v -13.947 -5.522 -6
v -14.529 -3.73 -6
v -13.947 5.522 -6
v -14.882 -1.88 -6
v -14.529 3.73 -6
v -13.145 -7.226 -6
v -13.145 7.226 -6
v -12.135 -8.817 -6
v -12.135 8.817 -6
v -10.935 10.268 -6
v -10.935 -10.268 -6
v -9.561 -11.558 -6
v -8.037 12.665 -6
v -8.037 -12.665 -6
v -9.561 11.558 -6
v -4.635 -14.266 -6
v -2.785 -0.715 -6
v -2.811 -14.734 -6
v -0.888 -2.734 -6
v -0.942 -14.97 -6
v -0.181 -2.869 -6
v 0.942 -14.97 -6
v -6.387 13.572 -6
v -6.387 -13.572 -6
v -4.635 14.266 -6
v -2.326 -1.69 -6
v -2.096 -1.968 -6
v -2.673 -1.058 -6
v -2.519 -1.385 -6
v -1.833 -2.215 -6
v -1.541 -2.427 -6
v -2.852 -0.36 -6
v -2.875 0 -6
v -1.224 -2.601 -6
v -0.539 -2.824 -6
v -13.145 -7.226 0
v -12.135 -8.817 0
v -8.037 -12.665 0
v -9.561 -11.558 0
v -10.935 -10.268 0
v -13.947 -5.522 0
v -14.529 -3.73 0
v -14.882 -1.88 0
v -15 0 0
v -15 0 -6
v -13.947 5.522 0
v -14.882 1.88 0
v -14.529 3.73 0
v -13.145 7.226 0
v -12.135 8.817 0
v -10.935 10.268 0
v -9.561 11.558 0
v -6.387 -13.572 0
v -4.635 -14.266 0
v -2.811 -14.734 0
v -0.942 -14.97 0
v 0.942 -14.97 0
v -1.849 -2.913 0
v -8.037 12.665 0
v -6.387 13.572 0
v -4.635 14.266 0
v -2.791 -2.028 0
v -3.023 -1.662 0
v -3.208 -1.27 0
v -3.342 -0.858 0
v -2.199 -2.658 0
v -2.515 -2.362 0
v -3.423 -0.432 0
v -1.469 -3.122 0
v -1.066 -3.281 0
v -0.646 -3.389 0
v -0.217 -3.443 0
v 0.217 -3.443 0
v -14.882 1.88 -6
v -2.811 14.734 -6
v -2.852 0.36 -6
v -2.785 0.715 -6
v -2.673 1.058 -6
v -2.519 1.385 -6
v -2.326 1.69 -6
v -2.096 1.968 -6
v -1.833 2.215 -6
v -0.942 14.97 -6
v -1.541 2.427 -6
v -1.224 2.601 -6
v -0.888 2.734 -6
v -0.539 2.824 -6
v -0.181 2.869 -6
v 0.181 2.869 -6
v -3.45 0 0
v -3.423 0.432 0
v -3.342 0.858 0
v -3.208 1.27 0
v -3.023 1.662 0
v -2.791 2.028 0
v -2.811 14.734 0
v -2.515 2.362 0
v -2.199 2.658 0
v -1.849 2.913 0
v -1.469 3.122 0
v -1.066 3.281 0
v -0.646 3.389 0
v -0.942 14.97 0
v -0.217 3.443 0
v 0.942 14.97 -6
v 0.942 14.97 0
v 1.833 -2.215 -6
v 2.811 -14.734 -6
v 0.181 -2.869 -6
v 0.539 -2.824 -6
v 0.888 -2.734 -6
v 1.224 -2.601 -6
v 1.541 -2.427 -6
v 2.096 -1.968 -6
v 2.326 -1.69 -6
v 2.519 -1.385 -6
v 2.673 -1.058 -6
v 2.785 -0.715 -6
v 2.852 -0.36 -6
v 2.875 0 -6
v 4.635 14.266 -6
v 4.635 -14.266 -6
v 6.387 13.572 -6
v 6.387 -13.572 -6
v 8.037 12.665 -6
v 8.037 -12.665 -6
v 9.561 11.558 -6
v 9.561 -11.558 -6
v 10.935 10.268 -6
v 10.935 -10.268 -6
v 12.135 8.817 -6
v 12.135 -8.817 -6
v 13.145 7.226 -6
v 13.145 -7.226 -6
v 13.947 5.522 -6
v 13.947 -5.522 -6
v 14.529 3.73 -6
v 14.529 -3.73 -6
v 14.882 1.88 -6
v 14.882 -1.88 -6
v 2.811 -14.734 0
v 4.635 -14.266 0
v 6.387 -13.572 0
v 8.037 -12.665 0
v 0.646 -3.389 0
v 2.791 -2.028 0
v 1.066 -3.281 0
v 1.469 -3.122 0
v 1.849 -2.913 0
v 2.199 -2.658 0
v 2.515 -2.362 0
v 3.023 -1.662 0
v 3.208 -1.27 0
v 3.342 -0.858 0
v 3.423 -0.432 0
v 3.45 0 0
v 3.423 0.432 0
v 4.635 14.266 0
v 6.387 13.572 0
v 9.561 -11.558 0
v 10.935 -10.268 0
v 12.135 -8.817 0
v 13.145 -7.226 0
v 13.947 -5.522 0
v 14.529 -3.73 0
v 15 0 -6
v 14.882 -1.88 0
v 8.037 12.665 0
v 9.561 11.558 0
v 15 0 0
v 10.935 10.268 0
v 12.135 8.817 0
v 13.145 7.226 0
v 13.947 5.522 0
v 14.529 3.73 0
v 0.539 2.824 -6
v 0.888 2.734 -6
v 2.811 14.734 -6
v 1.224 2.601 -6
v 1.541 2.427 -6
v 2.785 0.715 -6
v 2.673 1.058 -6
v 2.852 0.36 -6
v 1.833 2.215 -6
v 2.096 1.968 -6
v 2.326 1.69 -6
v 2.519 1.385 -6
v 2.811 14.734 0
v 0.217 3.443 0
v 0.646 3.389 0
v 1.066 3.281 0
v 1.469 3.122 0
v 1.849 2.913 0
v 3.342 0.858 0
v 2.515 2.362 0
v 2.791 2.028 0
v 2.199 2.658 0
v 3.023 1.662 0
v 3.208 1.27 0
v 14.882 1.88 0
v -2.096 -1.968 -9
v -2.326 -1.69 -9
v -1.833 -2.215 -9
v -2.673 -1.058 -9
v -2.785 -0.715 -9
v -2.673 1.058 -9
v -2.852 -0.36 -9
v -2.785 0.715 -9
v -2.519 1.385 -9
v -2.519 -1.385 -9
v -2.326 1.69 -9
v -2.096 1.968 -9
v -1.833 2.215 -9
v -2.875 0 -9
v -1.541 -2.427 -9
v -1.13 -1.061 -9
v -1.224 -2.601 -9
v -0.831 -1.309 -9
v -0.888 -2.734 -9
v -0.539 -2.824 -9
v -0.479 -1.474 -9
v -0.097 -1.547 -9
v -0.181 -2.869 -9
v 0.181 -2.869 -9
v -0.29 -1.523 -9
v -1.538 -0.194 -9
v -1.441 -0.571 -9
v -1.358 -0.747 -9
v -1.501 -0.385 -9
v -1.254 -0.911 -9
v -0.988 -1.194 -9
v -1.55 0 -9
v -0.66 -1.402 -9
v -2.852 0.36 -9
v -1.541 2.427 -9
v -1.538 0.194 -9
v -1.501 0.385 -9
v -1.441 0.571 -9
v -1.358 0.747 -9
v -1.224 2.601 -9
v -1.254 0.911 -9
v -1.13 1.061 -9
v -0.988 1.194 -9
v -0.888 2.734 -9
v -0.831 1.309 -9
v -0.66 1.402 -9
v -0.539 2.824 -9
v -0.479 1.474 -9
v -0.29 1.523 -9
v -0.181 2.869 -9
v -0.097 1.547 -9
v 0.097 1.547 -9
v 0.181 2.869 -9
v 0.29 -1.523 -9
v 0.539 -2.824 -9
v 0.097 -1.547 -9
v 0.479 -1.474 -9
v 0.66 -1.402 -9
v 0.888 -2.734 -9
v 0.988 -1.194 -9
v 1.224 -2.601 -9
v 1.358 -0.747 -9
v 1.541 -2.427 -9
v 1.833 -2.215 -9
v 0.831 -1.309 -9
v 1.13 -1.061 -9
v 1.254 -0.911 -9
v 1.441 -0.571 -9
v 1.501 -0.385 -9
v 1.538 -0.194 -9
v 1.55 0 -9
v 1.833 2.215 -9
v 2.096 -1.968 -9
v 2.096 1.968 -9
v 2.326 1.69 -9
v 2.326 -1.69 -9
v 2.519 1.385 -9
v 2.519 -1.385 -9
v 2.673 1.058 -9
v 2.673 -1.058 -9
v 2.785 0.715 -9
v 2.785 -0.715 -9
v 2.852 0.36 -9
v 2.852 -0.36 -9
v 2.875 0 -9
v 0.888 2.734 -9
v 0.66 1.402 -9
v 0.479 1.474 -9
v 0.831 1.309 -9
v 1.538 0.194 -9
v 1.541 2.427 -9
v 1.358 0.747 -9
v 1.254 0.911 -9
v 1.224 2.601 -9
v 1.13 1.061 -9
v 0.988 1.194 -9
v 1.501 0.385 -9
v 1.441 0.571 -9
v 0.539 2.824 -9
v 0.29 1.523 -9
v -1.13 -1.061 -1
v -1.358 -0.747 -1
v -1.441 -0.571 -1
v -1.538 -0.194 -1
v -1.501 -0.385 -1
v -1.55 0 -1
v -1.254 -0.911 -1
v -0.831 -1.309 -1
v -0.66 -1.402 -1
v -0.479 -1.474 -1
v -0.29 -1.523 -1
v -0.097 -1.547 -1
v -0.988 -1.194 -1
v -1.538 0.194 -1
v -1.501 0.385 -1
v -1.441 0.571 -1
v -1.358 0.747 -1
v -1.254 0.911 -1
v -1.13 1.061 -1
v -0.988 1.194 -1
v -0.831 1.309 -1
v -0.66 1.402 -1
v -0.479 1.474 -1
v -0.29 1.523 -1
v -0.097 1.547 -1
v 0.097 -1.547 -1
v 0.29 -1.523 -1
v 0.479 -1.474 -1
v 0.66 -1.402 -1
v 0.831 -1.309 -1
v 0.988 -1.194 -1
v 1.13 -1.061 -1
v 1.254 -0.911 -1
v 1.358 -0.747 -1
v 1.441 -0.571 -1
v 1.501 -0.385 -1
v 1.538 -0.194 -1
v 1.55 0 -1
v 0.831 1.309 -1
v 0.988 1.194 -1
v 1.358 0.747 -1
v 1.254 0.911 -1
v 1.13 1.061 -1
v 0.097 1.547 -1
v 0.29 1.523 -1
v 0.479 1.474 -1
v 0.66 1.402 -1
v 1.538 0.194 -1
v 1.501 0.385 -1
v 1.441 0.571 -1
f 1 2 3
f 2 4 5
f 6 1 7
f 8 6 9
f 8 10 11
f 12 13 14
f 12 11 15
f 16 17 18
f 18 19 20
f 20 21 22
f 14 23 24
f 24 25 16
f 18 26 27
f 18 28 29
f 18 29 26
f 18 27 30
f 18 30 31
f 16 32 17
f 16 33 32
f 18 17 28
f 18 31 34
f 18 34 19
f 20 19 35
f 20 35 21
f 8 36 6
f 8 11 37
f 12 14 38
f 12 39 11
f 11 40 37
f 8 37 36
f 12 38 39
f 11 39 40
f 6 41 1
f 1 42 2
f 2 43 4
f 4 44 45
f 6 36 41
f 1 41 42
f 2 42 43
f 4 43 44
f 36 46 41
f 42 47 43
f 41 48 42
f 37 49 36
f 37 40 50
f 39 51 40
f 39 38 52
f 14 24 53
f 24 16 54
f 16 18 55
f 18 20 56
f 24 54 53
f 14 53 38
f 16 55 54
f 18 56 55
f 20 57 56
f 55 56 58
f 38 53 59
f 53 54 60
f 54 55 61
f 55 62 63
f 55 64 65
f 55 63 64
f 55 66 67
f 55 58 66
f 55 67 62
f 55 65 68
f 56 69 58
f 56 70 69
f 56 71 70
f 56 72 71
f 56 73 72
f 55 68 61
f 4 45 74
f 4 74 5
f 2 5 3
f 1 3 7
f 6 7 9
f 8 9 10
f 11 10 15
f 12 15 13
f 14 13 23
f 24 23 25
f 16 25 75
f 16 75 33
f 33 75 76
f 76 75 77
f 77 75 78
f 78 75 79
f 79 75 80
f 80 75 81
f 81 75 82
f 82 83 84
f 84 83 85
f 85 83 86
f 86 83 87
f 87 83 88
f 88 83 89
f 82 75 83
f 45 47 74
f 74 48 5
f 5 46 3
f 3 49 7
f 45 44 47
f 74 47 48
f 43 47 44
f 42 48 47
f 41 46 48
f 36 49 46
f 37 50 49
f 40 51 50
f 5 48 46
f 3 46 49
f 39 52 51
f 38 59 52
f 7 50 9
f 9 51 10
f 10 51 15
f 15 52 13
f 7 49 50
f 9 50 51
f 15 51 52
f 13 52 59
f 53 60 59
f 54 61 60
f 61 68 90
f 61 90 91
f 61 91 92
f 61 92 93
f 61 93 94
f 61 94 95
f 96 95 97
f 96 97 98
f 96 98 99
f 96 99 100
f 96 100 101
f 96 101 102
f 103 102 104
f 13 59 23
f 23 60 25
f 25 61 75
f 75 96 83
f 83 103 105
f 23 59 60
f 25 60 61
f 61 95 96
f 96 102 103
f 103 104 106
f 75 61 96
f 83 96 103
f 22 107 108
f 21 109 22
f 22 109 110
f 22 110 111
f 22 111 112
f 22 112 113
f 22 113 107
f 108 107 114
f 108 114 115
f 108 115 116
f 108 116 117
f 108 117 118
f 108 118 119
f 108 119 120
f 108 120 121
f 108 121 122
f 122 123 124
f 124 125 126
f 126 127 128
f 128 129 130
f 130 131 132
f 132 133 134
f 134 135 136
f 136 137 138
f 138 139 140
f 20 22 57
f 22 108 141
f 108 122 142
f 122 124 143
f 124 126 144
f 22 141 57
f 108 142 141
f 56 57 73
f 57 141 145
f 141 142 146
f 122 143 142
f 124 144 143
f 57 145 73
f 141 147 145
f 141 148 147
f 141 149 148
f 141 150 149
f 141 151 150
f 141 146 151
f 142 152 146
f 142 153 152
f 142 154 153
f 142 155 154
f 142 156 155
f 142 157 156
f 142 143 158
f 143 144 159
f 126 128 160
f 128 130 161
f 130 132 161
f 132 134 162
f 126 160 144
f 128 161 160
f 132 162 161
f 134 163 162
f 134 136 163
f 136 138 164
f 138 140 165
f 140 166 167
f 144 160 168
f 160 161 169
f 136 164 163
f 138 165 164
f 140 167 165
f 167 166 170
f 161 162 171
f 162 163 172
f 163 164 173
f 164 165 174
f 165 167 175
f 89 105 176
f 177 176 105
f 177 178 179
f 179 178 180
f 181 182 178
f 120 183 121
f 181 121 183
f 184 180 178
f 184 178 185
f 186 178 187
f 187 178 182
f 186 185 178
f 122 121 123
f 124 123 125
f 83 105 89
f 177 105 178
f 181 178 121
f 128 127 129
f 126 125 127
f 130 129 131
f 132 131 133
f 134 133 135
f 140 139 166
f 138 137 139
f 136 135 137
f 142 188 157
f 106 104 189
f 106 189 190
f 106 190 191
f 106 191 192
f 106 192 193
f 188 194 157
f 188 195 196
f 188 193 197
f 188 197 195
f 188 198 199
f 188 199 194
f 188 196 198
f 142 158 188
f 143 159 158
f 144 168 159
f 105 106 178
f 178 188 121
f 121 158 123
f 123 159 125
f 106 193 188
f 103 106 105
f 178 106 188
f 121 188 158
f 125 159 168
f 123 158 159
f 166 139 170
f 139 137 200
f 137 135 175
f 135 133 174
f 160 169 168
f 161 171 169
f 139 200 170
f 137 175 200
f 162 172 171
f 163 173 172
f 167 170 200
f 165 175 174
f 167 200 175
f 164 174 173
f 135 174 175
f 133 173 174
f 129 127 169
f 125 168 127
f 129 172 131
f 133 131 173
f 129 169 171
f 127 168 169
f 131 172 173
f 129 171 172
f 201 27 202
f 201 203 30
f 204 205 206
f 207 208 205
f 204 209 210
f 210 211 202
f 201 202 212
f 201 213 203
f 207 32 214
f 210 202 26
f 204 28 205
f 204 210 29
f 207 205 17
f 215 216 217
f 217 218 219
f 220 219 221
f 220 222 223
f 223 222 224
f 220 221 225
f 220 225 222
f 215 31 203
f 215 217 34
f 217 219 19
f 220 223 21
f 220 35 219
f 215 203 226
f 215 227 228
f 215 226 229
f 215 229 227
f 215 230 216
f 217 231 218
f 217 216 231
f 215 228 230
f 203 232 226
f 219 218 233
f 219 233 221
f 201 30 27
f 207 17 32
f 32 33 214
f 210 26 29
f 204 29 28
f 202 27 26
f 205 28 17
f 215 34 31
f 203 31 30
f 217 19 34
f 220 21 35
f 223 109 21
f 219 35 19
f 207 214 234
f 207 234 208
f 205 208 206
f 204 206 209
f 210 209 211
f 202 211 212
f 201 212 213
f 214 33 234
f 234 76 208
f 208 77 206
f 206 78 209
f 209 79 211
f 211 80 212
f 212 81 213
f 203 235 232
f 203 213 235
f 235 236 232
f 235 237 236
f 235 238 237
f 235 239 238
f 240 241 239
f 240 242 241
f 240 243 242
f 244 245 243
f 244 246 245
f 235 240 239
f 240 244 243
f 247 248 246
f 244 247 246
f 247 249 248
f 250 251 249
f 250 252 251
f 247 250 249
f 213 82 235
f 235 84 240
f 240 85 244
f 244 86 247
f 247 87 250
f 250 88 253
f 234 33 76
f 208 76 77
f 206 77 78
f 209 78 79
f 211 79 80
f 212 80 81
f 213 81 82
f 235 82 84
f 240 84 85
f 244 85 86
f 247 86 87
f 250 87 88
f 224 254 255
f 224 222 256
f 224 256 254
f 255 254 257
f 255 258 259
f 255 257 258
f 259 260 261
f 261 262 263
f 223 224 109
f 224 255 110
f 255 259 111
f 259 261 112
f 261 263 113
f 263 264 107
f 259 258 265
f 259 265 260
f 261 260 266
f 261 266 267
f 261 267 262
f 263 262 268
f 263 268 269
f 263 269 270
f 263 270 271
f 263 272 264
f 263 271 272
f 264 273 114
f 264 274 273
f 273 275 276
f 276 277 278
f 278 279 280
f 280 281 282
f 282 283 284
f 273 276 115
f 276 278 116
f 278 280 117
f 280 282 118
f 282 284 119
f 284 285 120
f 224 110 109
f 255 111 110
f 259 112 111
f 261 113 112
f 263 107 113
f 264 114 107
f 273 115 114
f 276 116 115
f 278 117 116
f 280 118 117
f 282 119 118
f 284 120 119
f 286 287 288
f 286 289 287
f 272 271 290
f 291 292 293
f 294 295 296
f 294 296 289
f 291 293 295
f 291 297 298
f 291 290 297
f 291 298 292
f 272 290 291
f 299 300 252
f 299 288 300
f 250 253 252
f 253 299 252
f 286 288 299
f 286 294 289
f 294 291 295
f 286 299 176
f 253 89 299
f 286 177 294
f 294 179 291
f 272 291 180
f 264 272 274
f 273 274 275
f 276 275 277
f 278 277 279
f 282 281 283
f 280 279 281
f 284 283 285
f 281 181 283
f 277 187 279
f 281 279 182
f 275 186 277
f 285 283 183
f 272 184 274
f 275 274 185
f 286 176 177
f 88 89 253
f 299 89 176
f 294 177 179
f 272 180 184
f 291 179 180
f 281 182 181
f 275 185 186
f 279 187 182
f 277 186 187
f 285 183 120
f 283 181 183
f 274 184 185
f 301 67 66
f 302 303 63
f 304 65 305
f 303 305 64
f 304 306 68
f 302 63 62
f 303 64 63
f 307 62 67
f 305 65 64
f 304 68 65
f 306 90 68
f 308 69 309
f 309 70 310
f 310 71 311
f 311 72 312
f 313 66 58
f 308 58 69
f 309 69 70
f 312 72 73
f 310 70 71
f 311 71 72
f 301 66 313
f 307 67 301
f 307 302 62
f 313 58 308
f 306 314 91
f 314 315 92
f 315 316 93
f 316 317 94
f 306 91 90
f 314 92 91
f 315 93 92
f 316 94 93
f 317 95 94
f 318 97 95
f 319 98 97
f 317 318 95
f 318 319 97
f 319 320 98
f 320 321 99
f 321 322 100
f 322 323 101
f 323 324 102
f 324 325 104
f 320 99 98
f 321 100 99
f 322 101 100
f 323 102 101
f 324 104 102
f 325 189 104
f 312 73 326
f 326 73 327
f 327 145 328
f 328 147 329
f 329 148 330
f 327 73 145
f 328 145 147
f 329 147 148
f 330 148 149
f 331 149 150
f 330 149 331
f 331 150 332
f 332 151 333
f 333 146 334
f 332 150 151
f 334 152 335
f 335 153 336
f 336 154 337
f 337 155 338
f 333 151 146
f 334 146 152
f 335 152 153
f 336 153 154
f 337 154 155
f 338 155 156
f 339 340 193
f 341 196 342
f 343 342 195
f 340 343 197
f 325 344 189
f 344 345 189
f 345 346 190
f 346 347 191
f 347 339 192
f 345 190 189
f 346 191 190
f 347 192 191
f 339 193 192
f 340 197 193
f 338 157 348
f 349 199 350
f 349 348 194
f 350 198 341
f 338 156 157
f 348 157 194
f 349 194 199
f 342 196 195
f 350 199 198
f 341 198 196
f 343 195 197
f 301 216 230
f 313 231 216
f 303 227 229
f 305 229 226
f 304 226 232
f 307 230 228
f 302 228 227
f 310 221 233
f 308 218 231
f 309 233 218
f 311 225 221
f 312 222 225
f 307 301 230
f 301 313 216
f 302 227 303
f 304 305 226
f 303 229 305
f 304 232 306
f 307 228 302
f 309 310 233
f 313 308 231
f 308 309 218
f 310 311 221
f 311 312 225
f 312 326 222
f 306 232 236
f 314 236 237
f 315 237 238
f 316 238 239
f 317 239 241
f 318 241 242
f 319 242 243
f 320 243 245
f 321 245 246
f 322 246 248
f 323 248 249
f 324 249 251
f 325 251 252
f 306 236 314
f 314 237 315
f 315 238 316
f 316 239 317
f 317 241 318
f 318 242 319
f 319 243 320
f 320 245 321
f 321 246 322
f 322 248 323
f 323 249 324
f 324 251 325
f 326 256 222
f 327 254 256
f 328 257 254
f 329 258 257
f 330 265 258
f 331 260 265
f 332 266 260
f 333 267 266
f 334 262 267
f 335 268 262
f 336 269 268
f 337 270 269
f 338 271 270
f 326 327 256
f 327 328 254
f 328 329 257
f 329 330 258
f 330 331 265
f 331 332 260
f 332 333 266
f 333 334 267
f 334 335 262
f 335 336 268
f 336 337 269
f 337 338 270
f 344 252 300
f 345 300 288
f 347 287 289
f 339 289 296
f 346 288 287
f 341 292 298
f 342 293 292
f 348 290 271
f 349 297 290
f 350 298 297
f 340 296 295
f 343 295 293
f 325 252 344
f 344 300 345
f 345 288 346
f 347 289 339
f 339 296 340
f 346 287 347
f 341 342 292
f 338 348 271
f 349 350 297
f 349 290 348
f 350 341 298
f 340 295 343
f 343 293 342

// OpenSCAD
$fn = 50;

difference() {
	union() {
		translate(v = [0, 0, -6.0]) {
			cylinder(h = 6, r = 15.0);
		}
		#translate(v = [0, 0, -9.0]) {
			cylinder(h = 9, r = 2.875);
		}
	}
	union() {
		translate(v = [0, 0, 0]) {
			rotate(a = [0, 0, 0]) {
				difference() {
					union() {
						translate(v = [0, 0, -9.0]) {
							cylinder(h = 9, r = 1.25);
						}
						translate(v = [0, 0, -1.0]) {
							cylinder(h = 1.0, r1 = 1.55, r2 = 3.45);
						}
						translate(v = [0, 0, -9.0]) {
							cylinder(h = 9, r = 1.55);
						}
						translate(v = [0, 0, -9.0]) {
							cylinder(h = 9, r = 1.25);
						}
					}
					union();
				}
			}
		}
	}
}
